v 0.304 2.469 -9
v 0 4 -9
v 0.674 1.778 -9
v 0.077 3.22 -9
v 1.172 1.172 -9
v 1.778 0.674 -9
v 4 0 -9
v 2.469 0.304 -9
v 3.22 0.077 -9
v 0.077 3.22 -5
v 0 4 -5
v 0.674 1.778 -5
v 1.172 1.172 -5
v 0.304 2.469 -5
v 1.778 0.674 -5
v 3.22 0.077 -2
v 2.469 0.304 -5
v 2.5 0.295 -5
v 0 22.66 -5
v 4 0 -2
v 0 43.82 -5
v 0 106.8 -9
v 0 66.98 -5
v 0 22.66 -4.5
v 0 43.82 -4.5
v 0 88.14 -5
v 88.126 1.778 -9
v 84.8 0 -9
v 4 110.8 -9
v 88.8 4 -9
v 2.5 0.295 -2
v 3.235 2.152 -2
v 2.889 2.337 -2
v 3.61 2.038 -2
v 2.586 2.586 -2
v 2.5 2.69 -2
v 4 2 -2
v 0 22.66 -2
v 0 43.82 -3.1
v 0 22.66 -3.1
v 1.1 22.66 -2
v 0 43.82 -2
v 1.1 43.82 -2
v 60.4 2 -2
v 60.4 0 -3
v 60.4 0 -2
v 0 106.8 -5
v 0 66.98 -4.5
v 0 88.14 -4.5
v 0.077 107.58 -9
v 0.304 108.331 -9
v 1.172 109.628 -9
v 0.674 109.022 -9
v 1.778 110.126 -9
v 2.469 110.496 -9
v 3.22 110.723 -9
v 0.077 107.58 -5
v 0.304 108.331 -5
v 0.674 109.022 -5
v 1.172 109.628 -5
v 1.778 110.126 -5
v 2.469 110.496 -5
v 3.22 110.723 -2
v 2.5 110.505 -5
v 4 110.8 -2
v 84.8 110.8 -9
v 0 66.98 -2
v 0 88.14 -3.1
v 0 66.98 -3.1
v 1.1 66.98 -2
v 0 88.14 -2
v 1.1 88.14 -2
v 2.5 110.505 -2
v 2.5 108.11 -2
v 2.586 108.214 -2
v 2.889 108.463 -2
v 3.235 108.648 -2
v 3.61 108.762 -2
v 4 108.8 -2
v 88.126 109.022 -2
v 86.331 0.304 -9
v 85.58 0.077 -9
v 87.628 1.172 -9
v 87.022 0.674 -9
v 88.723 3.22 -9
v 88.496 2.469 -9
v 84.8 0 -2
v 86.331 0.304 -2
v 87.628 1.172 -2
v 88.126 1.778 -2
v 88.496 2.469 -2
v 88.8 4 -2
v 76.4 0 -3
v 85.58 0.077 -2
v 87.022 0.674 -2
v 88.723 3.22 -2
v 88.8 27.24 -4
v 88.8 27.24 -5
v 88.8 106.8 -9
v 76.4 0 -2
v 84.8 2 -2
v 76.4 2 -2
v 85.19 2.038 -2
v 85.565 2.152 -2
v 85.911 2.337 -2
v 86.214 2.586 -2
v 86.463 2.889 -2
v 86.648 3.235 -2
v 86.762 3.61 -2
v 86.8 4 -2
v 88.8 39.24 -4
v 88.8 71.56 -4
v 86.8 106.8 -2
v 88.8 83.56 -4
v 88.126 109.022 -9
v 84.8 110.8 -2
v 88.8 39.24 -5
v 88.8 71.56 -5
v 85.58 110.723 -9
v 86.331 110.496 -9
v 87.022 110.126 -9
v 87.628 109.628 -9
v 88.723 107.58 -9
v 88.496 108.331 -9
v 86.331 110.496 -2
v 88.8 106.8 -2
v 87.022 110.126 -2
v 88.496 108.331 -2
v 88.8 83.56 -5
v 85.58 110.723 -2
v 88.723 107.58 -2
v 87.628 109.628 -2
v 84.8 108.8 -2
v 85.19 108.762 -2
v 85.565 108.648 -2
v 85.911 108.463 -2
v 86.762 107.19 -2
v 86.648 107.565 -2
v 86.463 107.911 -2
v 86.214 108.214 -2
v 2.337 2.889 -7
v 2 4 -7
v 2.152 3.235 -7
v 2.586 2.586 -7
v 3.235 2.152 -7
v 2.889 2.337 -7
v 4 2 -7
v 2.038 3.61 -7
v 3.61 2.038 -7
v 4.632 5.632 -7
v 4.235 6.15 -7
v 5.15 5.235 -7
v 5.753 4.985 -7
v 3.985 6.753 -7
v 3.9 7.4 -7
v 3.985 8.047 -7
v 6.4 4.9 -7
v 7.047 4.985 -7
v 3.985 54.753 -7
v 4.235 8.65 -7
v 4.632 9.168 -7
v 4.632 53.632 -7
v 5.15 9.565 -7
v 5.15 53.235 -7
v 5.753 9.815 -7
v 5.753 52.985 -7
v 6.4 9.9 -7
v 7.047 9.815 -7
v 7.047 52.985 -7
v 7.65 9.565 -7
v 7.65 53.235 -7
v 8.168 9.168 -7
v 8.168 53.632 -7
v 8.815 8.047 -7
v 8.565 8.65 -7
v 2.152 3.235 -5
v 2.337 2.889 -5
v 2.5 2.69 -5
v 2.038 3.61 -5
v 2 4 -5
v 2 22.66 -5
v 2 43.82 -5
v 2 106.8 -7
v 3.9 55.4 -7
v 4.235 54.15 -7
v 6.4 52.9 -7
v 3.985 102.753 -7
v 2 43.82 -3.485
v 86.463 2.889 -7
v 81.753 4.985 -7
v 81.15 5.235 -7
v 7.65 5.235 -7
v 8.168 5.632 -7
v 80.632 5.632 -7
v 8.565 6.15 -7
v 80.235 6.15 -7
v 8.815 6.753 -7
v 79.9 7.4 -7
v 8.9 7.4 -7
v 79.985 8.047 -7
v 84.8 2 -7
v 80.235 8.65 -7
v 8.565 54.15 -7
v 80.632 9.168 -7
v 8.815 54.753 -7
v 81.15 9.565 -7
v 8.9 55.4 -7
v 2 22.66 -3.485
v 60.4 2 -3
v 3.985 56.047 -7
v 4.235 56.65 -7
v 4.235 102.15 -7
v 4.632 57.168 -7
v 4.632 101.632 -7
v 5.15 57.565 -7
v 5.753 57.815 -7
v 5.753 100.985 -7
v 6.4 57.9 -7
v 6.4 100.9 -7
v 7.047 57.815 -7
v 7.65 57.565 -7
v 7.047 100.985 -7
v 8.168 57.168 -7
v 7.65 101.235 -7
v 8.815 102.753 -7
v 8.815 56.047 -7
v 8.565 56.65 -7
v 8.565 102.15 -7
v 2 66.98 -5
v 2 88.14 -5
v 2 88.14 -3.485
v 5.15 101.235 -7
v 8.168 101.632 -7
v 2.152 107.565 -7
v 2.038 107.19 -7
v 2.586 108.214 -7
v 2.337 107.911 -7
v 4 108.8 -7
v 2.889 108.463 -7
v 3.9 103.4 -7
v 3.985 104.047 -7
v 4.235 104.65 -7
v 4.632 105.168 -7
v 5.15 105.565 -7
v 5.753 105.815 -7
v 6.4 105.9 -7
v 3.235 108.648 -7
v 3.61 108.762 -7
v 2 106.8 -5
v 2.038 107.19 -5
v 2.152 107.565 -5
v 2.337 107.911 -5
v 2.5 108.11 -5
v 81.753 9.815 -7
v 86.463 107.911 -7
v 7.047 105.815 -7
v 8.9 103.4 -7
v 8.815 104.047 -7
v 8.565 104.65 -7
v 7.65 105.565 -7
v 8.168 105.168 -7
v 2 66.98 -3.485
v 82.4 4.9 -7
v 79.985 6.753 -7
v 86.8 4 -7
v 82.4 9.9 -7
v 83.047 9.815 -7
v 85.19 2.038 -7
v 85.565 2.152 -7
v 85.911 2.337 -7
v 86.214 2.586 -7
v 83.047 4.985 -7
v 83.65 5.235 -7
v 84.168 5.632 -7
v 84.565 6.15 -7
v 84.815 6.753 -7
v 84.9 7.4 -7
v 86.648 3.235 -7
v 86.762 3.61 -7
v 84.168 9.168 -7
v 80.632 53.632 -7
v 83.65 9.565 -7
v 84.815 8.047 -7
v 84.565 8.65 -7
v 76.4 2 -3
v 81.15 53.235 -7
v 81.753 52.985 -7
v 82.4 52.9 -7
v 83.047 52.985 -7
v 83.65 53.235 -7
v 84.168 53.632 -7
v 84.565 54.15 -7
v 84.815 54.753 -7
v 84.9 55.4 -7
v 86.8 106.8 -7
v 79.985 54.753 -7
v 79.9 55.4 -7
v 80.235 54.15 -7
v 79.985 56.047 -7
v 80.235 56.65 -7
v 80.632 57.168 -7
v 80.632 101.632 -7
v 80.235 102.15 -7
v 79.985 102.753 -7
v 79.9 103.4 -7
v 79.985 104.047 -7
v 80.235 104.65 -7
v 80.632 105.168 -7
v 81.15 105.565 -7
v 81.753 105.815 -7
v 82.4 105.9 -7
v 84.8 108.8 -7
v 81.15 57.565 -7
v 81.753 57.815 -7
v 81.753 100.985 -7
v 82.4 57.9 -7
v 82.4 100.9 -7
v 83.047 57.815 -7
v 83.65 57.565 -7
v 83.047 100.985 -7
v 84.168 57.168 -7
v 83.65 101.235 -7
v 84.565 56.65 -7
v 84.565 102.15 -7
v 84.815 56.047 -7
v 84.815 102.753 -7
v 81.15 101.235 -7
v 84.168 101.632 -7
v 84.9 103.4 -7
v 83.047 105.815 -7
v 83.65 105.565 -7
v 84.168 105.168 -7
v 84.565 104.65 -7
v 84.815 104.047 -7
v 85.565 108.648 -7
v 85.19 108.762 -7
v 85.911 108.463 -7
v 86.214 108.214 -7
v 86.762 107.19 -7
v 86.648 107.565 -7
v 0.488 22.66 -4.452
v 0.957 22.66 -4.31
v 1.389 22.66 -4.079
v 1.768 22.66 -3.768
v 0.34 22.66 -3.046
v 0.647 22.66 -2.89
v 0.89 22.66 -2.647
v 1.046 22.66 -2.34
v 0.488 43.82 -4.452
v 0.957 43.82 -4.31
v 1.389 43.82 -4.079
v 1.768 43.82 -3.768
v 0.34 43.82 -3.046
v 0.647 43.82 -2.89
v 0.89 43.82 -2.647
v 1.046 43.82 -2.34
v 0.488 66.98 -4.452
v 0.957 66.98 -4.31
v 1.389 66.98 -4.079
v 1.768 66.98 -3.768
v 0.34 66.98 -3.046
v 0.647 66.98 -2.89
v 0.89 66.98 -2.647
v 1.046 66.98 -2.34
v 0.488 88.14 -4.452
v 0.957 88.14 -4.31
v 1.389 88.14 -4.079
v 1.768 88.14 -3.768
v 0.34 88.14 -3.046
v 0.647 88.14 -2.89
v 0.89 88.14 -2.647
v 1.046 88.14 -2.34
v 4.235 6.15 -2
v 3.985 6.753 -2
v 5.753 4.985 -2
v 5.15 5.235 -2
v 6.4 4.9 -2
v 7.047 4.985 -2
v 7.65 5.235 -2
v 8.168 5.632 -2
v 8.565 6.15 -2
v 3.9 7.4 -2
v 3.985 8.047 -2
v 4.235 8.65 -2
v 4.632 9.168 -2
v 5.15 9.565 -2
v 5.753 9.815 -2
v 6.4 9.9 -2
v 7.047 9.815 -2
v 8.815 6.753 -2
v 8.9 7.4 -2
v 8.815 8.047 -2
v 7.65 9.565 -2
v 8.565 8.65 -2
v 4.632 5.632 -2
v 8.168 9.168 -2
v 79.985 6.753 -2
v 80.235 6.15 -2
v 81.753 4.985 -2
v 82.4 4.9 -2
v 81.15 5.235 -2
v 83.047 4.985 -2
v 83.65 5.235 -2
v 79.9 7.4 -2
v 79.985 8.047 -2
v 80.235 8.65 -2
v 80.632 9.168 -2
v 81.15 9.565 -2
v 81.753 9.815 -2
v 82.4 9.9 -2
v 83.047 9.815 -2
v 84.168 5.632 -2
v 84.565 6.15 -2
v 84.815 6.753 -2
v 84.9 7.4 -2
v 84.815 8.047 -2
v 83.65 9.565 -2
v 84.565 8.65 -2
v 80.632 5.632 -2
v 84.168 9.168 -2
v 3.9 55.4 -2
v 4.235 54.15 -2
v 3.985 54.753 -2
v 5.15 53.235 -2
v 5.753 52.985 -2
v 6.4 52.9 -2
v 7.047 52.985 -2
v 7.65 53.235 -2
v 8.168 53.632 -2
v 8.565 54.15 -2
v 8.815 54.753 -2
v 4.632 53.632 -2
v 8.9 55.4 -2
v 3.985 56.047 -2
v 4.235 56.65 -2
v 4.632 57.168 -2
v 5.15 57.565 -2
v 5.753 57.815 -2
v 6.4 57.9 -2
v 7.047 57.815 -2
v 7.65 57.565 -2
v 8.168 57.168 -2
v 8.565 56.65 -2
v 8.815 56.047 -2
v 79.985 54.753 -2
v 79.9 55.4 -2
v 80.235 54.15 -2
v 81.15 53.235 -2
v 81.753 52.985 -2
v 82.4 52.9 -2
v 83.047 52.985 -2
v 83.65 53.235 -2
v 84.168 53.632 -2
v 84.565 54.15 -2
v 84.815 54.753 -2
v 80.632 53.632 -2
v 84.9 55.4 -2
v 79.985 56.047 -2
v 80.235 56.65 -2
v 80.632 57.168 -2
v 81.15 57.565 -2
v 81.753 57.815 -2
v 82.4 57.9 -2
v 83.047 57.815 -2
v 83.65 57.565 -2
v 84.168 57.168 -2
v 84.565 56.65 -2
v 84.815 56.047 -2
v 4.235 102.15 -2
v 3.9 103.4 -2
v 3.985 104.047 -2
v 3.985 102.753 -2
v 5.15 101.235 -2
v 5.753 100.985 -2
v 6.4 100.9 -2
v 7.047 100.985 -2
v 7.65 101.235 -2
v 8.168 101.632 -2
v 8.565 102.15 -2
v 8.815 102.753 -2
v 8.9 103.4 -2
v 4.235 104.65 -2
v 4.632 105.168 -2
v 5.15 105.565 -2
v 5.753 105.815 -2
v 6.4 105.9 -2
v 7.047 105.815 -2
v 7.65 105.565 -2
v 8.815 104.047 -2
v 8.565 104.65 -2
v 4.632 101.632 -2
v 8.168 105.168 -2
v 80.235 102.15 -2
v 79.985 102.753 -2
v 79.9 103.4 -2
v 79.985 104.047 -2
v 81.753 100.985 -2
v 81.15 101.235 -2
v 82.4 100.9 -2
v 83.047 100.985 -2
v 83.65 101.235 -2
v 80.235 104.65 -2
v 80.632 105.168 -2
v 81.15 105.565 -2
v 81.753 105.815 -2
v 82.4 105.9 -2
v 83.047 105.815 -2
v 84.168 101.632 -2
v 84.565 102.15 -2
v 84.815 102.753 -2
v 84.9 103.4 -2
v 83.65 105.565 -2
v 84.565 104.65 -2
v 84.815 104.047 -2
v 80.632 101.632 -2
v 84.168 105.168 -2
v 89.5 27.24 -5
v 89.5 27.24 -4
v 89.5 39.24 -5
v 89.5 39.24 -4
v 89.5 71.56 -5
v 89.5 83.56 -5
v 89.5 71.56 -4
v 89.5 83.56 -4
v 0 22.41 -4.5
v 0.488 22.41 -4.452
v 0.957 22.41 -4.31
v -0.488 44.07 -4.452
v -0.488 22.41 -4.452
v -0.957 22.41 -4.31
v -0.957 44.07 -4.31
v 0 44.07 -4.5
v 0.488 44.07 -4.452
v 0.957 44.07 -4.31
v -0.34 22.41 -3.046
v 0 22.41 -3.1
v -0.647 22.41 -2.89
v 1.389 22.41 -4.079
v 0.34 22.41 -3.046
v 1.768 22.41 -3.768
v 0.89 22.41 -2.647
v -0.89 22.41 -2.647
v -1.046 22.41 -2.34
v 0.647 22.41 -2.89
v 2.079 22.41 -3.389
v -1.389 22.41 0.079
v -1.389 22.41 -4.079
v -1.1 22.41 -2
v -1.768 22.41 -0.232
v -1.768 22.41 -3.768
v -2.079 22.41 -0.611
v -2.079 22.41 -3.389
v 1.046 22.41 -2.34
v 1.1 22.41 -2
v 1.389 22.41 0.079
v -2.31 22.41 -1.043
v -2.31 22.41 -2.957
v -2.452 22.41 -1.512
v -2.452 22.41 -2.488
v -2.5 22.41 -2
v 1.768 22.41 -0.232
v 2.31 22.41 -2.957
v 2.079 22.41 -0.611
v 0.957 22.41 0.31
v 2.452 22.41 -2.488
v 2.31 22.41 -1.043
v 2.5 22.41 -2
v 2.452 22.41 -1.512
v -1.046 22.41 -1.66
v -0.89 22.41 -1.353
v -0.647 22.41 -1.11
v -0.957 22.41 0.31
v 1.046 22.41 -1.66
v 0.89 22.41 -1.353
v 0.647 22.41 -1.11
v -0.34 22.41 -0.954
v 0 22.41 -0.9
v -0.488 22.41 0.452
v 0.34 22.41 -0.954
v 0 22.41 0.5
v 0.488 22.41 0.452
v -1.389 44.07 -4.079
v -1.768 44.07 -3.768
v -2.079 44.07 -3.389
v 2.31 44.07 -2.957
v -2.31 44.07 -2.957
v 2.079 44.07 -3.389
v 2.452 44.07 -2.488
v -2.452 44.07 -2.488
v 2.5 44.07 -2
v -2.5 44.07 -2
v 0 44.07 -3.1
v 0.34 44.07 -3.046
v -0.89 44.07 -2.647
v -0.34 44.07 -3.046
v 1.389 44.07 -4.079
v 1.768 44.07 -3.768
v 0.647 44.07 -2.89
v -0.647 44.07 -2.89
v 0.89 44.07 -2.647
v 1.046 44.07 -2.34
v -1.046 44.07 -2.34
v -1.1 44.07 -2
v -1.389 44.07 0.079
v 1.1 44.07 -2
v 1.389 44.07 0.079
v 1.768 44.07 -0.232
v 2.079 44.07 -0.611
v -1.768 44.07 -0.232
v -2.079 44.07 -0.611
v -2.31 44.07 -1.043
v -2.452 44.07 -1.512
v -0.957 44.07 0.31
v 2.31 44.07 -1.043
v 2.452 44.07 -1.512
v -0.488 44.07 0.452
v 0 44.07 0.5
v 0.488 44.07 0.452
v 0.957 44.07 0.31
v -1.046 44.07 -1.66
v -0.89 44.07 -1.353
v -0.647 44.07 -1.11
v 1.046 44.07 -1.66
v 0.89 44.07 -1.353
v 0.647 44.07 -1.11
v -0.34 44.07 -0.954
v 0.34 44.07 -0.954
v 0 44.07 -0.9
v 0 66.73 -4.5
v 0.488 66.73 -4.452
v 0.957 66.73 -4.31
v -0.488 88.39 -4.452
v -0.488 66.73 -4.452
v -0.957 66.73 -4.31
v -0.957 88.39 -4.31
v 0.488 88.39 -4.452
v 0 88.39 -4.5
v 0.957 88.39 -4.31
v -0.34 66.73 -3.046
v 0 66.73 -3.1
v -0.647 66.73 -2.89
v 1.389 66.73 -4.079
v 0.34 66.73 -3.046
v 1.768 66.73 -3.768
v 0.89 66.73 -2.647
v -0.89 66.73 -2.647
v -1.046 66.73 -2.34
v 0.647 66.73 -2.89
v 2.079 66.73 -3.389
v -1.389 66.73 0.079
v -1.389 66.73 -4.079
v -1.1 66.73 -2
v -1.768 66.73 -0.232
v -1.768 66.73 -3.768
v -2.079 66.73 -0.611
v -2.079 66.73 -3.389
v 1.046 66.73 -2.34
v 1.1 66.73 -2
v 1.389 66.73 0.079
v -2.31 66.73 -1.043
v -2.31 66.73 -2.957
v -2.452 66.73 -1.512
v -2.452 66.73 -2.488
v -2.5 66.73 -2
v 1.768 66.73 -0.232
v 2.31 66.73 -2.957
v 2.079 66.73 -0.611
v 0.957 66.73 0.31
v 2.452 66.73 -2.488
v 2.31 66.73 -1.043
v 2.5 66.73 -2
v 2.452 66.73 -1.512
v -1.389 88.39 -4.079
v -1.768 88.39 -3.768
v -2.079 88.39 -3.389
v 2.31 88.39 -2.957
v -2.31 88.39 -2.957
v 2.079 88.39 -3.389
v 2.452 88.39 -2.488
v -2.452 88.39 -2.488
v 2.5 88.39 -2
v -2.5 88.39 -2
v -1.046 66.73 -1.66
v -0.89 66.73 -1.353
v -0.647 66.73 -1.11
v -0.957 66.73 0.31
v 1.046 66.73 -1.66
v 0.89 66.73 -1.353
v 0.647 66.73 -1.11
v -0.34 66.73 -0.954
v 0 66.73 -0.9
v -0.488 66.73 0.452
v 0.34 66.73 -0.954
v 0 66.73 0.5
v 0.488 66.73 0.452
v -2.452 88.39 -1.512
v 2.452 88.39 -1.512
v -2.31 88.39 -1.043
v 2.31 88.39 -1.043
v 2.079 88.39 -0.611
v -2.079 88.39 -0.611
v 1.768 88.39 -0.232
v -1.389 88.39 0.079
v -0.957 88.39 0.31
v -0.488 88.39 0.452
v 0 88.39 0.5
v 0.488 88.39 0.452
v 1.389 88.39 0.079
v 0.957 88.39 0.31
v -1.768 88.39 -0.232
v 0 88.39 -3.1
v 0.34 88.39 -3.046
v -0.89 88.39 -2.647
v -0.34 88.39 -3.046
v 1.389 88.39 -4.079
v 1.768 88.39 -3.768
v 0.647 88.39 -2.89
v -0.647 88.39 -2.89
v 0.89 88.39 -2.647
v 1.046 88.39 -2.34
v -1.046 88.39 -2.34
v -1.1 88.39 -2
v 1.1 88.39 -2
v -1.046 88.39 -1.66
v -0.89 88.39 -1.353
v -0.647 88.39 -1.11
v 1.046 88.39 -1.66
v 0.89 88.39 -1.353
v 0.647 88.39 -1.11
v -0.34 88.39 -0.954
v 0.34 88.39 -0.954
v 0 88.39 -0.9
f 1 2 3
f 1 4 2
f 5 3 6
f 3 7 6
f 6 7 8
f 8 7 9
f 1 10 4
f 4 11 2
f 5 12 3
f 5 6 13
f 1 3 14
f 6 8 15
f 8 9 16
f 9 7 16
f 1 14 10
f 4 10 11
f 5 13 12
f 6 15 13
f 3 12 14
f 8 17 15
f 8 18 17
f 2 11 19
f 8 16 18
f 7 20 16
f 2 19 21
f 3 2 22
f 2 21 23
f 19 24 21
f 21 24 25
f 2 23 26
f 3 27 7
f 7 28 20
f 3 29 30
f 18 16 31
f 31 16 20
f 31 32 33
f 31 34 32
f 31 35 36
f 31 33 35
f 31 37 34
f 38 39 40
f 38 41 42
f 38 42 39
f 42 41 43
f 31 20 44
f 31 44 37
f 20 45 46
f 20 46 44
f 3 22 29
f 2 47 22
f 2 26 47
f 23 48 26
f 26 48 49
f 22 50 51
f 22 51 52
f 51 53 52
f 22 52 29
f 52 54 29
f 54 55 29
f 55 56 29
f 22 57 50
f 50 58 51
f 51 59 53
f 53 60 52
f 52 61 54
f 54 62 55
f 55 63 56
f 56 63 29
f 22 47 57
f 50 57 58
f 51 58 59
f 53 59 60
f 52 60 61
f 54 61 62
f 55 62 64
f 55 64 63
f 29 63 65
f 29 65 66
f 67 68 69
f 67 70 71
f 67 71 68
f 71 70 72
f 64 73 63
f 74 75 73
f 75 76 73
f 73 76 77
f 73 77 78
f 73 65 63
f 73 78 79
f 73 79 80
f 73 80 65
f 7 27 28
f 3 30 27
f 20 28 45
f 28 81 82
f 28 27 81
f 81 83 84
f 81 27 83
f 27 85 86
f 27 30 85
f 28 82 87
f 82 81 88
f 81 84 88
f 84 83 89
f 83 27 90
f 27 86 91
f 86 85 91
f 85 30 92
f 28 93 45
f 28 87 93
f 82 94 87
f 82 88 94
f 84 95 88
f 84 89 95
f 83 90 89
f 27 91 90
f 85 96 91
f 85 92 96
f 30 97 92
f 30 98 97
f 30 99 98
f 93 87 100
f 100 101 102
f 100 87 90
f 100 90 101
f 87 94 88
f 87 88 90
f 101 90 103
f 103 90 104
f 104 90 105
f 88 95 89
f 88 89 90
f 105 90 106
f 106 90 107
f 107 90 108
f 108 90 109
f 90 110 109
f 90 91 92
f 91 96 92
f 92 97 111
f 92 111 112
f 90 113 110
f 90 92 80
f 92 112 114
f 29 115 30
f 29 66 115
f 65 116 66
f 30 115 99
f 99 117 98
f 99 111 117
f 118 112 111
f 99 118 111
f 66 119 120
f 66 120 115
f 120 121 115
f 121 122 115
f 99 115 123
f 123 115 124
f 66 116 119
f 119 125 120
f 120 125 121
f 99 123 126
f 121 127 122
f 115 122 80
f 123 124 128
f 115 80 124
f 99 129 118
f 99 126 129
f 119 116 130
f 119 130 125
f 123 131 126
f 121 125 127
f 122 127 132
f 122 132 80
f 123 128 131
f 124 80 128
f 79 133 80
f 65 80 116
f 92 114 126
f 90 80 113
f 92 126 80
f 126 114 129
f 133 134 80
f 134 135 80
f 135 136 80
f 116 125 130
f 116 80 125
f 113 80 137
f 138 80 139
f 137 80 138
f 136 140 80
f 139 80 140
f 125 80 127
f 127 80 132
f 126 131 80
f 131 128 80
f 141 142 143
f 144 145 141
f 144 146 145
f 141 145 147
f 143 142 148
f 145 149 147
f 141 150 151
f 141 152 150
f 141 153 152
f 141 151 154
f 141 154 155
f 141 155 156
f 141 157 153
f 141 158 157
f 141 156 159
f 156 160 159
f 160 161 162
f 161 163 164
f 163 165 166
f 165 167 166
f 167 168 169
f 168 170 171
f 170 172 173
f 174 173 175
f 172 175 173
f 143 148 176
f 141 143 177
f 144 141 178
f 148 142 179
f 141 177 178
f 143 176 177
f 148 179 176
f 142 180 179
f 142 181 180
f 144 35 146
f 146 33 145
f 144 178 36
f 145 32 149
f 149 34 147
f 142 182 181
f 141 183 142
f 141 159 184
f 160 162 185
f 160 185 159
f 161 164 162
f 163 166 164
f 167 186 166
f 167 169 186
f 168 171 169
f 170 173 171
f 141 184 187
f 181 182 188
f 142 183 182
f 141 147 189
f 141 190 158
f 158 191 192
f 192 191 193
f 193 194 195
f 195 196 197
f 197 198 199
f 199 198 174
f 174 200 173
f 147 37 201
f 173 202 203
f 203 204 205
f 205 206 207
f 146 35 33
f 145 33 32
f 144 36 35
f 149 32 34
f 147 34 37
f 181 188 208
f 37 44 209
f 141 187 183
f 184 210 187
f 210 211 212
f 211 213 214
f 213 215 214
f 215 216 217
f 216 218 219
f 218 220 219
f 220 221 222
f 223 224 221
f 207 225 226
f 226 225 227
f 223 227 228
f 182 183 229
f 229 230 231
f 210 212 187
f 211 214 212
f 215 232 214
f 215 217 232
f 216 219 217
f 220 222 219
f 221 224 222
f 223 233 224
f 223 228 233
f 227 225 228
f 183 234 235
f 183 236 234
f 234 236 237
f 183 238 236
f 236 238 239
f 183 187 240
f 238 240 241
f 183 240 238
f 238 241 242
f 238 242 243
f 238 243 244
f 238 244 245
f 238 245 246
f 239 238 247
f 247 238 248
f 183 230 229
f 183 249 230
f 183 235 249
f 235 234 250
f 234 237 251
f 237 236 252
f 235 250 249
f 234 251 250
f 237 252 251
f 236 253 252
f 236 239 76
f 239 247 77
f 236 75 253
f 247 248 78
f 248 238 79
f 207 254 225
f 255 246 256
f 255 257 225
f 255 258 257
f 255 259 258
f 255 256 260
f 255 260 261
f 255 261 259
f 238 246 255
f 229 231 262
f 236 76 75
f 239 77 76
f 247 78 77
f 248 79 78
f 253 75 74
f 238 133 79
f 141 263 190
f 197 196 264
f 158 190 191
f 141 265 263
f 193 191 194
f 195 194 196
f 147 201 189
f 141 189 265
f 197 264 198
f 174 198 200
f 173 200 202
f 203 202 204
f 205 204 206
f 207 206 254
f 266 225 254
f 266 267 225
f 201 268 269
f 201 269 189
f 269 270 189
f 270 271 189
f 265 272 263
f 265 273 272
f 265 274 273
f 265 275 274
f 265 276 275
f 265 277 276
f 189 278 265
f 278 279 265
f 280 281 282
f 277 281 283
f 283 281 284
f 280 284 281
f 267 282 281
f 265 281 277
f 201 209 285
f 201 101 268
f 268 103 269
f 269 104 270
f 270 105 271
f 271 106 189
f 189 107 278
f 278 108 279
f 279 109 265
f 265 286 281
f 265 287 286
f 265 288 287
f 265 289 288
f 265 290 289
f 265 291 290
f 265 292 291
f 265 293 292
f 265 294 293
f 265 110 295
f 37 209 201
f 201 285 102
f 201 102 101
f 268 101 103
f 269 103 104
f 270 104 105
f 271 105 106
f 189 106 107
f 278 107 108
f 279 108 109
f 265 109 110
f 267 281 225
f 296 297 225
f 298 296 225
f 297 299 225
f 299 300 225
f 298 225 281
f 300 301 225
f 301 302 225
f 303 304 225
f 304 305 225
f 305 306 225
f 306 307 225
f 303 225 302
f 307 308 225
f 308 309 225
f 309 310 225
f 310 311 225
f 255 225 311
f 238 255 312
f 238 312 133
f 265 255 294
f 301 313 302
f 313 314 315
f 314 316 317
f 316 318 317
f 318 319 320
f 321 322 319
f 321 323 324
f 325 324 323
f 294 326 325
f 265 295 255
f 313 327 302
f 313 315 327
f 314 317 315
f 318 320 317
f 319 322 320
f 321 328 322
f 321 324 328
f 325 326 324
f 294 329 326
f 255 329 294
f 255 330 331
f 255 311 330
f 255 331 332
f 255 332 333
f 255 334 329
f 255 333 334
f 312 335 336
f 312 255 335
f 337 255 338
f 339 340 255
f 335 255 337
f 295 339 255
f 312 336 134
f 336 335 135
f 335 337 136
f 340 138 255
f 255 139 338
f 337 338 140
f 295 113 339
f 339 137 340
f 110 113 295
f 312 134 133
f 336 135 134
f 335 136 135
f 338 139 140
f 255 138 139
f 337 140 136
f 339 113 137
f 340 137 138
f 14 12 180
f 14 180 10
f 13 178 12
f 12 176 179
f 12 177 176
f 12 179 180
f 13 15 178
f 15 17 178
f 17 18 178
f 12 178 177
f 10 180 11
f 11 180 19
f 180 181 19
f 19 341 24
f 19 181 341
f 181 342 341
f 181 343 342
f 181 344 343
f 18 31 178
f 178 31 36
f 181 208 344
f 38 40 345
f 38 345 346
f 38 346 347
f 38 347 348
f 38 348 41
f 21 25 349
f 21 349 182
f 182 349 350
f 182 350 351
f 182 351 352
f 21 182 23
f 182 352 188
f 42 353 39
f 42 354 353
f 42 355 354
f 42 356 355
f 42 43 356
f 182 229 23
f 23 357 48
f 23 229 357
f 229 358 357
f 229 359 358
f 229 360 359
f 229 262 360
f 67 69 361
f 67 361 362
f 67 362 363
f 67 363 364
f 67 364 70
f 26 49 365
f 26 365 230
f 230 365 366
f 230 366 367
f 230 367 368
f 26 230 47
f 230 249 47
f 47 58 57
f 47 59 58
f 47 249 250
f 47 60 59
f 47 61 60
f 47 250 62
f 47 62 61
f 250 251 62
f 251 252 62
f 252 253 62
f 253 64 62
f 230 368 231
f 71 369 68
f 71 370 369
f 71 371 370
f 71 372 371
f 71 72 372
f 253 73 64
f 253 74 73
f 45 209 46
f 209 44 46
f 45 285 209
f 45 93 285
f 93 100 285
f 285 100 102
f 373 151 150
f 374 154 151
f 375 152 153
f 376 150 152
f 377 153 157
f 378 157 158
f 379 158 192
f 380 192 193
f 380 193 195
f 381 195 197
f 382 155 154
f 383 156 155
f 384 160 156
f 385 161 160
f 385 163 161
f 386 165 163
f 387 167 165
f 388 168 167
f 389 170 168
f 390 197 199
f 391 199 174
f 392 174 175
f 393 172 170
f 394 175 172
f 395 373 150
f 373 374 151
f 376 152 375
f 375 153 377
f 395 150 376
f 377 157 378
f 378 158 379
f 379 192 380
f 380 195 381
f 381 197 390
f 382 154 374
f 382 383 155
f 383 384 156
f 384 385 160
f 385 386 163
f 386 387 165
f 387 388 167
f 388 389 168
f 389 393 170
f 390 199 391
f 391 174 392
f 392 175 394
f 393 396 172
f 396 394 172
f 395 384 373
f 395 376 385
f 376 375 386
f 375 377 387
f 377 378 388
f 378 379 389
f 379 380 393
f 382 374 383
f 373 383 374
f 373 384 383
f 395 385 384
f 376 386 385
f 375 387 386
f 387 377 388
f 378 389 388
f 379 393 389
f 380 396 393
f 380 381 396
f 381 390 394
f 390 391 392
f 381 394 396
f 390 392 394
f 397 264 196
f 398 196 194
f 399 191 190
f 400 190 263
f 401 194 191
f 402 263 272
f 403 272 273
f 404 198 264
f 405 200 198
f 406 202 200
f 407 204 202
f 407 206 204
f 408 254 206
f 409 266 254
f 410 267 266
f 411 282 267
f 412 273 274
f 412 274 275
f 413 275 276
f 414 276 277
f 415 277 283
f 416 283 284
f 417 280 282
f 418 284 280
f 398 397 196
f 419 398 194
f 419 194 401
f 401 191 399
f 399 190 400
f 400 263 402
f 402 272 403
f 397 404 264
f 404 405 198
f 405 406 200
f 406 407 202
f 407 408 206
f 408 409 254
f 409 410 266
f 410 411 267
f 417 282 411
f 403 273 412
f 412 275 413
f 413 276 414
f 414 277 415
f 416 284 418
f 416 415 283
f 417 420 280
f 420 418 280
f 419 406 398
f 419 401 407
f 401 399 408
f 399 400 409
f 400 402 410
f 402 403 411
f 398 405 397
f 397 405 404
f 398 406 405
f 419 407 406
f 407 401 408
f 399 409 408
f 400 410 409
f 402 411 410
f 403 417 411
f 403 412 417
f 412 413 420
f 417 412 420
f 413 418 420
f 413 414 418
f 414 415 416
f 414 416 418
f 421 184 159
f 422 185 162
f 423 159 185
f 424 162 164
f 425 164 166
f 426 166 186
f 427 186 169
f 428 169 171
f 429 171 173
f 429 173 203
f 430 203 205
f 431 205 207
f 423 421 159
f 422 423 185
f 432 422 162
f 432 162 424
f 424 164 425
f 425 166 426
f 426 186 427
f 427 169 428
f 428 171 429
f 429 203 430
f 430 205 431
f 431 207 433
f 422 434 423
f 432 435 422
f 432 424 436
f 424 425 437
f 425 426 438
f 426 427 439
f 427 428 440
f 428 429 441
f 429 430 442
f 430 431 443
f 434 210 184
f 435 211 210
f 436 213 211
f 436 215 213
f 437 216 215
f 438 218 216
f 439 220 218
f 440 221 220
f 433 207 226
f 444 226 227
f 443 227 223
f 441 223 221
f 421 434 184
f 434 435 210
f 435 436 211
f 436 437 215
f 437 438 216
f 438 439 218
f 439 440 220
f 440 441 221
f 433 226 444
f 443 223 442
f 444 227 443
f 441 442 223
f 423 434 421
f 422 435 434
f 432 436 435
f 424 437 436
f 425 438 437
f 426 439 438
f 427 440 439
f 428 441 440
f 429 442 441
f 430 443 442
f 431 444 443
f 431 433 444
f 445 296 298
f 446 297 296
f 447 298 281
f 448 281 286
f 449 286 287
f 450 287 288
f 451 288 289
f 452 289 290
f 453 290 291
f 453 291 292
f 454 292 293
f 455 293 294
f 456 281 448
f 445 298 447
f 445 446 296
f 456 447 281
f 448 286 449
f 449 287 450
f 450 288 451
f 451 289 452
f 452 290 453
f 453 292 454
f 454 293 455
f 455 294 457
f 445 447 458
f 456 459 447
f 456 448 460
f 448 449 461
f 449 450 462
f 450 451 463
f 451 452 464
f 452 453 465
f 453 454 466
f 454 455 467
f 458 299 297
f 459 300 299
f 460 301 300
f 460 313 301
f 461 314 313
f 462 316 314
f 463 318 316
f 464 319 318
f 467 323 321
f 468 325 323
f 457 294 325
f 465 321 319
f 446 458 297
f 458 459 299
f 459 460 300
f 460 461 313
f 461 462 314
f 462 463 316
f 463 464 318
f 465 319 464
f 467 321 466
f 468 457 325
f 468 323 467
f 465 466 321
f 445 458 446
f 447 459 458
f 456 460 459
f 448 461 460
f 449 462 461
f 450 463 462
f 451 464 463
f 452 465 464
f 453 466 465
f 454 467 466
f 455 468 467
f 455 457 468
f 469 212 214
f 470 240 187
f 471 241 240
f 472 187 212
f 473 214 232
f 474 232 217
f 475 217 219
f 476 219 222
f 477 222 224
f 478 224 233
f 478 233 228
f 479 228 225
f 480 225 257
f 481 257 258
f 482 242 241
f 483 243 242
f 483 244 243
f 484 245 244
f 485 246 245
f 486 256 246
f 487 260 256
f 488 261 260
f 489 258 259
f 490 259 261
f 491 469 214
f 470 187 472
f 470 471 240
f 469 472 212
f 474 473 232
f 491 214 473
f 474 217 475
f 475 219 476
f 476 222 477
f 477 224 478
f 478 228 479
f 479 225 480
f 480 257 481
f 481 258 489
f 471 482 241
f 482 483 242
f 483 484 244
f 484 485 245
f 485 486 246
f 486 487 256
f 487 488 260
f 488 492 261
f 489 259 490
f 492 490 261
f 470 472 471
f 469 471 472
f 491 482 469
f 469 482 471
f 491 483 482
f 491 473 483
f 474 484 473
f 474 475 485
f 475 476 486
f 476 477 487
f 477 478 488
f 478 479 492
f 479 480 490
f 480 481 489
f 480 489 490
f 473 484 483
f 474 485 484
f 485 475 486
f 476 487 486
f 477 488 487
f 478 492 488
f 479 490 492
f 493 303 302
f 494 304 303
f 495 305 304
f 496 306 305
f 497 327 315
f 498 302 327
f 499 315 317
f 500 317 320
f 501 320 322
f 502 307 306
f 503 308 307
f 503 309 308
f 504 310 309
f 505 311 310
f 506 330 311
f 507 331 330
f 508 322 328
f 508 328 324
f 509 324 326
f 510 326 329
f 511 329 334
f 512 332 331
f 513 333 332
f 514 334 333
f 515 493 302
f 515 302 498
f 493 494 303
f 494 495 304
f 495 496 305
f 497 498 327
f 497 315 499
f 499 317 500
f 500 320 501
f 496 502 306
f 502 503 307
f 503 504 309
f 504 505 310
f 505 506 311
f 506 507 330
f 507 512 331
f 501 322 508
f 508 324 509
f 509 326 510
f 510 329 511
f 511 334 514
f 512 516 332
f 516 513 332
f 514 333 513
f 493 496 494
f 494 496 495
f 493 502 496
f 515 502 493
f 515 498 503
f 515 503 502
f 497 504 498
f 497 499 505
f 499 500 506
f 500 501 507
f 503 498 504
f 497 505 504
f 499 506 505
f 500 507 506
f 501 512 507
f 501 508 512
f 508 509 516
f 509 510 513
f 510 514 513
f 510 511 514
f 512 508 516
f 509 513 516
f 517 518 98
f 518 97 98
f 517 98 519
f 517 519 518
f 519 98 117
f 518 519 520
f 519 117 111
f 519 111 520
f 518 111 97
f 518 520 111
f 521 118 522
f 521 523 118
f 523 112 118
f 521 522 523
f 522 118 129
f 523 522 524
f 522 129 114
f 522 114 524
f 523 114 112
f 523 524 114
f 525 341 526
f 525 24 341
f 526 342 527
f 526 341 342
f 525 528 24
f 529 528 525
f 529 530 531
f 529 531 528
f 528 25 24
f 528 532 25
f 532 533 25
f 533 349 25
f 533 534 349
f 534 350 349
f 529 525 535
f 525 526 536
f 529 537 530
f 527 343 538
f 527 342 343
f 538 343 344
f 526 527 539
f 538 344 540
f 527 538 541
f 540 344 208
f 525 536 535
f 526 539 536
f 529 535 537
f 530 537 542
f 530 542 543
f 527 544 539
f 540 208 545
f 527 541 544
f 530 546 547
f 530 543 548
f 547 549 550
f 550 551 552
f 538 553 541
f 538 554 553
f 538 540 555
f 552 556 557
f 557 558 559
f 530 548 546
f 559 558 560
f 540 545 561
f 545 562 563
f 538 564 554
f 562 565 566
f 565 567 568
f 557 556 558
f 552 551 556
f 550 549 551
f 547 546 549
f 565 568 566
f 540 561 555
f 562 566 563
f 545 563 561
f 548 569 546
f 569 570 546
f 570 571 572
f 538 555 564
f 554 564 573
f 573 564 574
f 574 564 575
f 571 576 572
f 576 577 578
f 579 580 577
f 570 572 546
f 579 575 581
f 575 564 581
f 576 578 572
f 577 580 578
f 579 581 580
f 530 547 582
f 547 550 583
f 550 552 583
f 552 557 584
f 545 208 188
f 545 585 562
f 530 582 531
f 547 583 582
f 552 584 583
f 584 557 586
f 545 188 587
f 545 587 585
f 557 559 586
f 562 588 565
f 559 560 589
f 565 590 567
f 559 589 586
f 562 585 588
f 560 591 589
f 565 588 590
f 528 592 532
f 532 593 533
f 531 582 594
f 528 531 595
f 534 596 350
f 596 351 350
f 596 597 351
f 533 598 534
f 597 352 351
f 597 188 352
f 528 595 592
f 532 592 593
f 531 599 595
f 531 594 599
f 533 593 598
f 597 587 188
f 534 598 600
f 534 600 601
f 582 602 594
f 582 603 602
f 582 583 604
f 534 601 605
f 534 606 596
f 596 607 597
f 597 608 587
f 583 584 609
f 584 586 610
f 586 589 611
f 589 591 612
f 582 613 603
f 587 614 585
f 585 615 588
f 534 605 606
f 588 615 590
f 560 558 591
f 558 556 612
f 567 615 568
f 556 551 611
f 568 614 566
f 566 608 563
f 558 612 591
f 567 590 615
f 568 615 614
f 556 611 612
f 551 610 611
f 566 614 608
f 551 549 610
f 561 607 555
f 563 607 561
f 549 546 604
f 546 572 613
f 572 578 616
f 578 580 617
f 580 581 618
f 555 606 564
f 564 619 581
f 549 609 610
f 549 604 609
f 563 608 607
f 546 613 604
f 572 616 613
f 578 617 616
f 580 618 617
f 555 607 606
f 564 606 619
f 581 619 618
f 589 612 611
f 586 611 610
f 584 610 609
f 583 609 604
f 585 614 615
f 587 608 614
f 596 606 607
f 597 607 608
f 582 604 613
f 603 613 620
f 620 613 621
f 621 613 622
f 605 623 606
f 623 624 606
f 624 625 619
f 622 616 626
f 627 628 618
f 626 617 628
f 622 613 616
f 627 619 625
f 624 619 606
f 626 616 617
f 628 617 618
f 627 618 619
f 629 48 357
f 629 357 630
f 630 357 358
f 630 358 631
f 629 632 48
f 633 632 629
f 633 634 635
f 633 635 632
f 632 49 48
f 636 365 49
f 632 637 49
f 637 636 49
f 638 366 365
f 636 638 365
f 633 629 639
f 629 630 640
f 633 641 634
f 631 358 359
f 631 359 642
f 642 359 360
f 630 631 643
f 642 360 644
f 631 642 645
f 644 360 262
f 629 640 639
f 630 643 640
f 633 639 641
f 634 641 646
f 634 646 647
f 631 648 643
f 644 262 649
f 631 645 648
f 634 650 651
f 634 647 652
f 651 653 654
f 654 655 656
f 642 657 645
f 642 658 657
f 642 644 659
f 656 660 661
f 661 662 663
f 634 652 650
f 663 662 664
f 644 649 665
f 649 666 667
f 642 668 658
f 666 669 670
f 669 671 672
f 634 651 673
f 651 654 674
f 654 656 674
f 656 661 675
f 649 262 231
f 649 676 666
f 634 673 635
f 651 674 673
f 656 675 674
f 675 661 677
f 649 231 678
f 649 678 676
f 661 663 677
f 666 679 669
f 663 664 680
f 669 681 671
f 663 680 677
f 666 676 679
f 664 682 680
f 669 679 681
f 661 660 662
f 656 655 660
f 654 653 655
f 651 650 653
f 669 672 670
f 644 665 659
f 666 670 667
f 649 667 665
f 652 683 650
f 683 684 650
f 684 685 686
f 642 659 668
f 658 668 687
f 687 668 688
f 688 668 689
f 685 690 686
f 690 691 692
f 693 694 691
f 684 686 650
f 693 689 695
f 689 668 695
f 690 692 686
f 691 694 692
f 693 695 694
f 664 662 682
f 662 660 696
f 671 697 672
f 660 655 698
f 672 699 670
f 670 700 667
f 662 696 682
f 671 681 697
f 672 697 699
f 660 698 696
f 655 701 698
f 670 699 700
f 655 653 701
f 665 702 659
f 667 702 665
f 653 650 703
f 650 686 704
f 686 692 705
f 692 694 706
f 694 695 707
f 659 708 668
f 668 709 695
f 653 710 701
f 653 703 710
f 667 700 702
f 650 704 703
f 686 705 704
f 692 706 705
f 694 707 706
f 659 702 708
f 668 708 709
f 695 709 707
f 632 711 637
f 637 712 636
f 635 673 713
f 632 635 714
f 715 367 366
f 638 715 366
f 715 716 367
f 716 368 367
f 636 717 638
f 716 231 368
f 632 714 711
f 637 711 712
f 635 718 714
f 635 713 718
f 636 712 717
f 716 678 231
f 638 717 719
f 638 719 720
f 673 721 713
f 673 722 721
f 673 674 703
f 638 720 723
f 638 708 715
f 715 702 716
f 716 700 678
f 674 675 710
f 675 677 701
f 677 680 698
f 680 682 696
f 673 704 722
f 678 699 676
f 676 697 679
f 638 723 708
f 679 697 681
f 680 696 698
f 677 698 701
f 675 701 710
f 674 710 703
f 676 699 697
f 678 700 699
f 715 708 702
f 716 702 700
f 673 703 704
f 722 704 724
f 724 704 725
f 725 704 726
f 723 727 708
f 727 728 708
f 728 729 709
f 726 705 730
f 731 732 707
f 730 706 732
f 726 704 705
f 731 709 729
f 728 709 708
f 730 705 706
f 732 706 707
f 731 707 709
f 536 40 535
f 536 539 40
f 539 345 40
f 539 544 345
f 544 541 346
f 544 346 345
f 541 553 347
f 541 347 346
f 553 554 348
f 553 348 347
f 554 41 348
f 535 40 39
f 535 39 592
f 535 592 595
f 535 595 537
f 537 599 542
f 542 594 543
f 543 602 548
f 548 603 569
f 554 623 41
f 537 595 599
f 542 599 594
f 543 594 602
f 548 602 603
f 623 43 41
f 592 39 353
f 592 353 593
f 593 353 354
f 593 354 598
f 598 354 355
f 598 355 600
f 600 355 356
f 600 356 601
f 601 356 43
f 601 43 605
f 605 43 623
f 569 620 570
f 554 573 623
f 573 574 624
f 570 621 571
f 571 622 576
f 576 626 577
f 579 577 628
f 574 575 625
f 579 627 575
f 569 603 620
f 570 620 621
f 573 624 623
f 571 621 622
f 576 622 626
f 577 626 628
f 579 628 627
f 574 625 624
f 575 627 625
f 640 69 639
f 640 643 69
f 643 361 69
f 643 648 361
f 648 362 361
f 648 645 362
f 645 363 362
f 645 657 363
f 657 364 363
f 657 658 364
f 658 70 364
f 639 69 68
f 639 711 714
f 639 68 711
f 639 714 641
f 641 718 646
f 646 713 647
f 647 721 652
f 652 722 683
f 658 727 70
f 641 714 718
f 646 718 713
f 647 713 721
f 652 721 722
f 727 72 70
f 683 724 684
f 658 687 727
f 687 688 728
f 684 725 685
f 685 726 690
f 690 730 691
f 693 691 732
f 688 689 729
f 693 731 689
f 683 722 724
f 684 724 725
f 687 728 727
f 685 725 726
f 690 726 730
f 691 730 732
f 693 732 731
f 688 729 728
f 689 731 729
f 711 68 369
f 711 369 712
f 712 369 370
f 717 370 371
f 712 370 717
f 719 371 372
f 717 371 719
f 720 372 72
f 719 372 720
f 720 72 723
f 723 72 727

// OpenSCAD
// file: dims.scad
// Shared dimensions for the baby-remote printed board + snap cap.
// SINGLE SOURCE OF TRUTH for the values BOTH parts must agree on. Edit the
// OUTLINE / GRID / LED / USB here and both baby-remote-pcb.scad and
// baby-remote-pcb-case.scad pick it up (they `include <dims.scad>`).
//
// Internal details stay in their own file: grooves / holes / C3 pocket / feet
// live in baby-remote-pcb.scad; walls / ledge / snap ridges / barrels live in
// baby-remote-pcb-case.scad. Only the shared interface lives here.

board_w = 84;     // board outline X (mm)
board_h = 106;    // board outline Y (mm)
board_t = 2.0;    // board thickness

// 4x4 button grid — cell centre, board-local mm. TOP (low Y) = USB/C3 edge.
function cx(c) = 16.5 + 17*c;
function cy(r) = 38.5 + 17*r;
function is_led(r,c) = (r==3 && c==3);   // cell (3,3) is the RGB LED, not a switch

c3_x = 66;        // ESP32-C3 SuperMini / USB-C port X (board-local), at the top edge

// ─── Shared case fit (cap + back cover BOTH use these) ────
// Three parts now share this frame: baby-remote-pcb-case.scad (cap),
// baby-remote-back-cover.scad (back cover), and the board. z = 0 at BOARD TOP.
pcb_clear = 0.4;  // gap per side around the board
wall      = 2.0;  // perimeter wall thickness (cap + cover, kept equal so faces are flush)
corner_r  = 4;    // outer corner radius

board_bot = -board_t;             // -2.0  board back (bottom) plane
inner_w   = board_w + 2*pcb_clear; // 84.8  cavity X
inner_l   = board_h + 2*pcb_clear; // 106.8 cavity Y
case_w    = inner_w + 2*wall;       // 88.8  outer X (shared by cap + cover)
case_l    = inner_l + 2*wall;       // 110.8 outer Y

// board-local (x,y) -> case (outer) coords
function px(x) = wall + pcb_clear + x;
function py(y) = wall + pcb_clear + y;

// USB-C opening (C3 dev-board port, overhangs the TOP short edge, y=0)
usbc_w = 16; usbc_h = 9;   // sized to clear the cable's rubber overmold (was 11x5)
usb_cx = px(c3_x);

// ─── Back cover + cap-to-cover joint ──────────────────────
// The board IS held by the cap (proven). The COVER closes the wire side and
// joins the cap via a FILAMENT-PIN HINGE on the LEFT long edge (x=0) and a
// SNAP on the RIGHT long edge (x=case_w). USB stays on the top short edge.
wire_clear = 5.0;   // clearance below the board back for wires/solder/pins
cover_fl_t = 2.0;   // back-cover floor thickness
// derived z planes (cover lives below the board):
cover_in_z  = board_bot - wire_clear;        // -5.0  cover floor inner (top) face
cover_bot_z = cover_in_z - cover_fl_t;       // -7.0  cover outer bottom
// cover walls rise from the floor up to the board-bottom plane to butt the cap:
cover_wall_h = board_bot - cover_in_z;       //  3.0  (wall above the floor, to z=board_bot)

// Standoff posts on the cover floor that push the board UP to the cap ledge when
// closed. Same groove-free zones the old feet used (board-local mm).
post_r = 2.5;
post_xy = [[4,5],[80,5],[4,53],[80,53],[4,101],[80,101]];

// Filament-pin hinge on the LEFT edge (axis along Y at the seam z=board_bot).
hinge_kn_r = 2.5;   // knuckle outer radius (protrudes -X beyond the wall)
hinge_bore = 2.2;   // pin bore for 1.75 mm filament — oversized for print shrinkage (was 1.9, too tight)
hinge_n    = 5;     // knuckle count along the edge (even idx = CAP, odd = COVER)
hinge_gap  = 0.5;   // axial play between adjacent knuckles
hinge_z    = board_bot;                       // pin axis z (the cap/cover seam)
function hinge_y0(i) = i*case_l/hinge_n;      // knuckle i start (Y)
function hinge_y1(i) = (i+1)*case_l/hinge_n;  // knuckle i end (Y)

// One hinge knuckle: a bored cylinder lying along Y at the left-edge seam.
// SHARED so cap (even i) and cover (odd i) knuckles interlock exactly.
module hinge_knuckle(i){
    y0 = hinge_y0(i) + hinge_gap/2;
    y1 = hinge_y1(i) - hinge_gap/2;
    translate([0, y0, hinge_z]) rotate([-90,0,0])
        difference(){
            cylinder(h=y1-y0, r=hinge_kn_r, $fn=32);
            translate([0,0,-0.1]) cylinder(h=y1-y0+0.2, r=hinge_bore/2, $fn=20);
        }
}

// Wall RELIEF slot for the OPPOSITE part's knuckle i — subtract from a part's
// left wall so the interleaved knuckles don't collide with the other part's wall.
// (Each part keeps solid wall at its OWN knuckle positions for attachment.)
module hinge_relief(i){
    y0 = hinge_y0(i) - hinge_gap;
    y1 = hinge_y1(i) + hinge_gap;
    translate([-0.5, y0, hinge_z - hinge_kn_r - 0.5])
        cube([wall + 1.0, y1 - y0, 2*hinge_kn_r + 1.0]);
}

// Snap-fit ported from push-c3-enclosure-bareboards.scad (proven). The COVER
// ("body") has a small RIDGE on its outer right wall; the CAP ("lid") has a
// TAPERED TAB (thick root → thin tip) hanging OUTSIDE that wall with a NOTCH that
// captures the ridge. The tab flexes OUTWARD into open air (no rubbing); the taper
// keeps it stiff at the notch but flexible at the tip; an ANCHOR block ties the tab
// solidly into the cap wall (volumetric, not a 2D seam). Press the tab out to open.
snap_w              = 12;    // width along the edge (Y)
snap_protrusion     = 0.7;   // cover ridge depth (+X) — the grip
snap_ridge_h        = 1.0;   // ridge height (Z)
snap_tab_thick_root = 2.5;   // cap tab thickness (X) at the root (stiff, where it grips)
snap_tab_thick_tip  = 1.5;   // cap tab thickness (X) at the tip (flexes to snap on)
snap_tab_drop       = 7;     // tab length below the seam
snap_notch_h        = 2.0;   // notch height (Z, > ridge for tolerance)
snap_ridge_zc       = board_bot - 2.5;   // ridge centre z (below seam, upper/thicker tab region)
clamp_ys            = [case_l*0.30, case_l*0.70];   // two snaps
// main file
// Baby Remote — BACK COVER (closes the exposed wire side of the board)
// Third part of the enclosure (board + cap + this cover). It snaps to the cap:
//   - FILAMENT-PIN HINGE on the LEFT long edge (x=0): interleaved knuckles on
//     cap + cover, joined by a snipped length of 1.75 mm filament as the pin.
//   - CANTILEVER SNAPS on the RIGHT long edge (x=case_w): the cap's clamps hang
//     down into windows in this cover's right wall and click home.
//   - The cover floor sits 3 mm below the board back (wire_clear); STANDOFF POSTS
//     rise to the board bottom and push it up against the cap's internal ledge.
//   - USB-C stays on the TOP short edge (handled by the cap); a shallow relief in
//     the cover's top wall keeps the connector clear.
// All shared geometry comes from dims.scad (single source of truth for cap+cover).
// Print FLOOR-DOWN (knuckles/clamps-window up). z = 0 at the BOARD TOP face, so
// the whole cover lives at NEGATIVE z (board_bot down to cover_bot_z).

include <dims.scad>

// ─── helpers ──────────────────────────────────────────────
module rbox(w,l,h,r){ hull() for(x=[r,w-r],y=[r,l-r]) translate([x,y,0]) cylinder(h=h,r=r,$fn=32); }
// hinge_knuckle(i) is shared from dims.scad; cover renders the ODD indices.

// ─── back cover body ──────────────────────────────────────
module back_cover(){
    union(){
        difference(){
            // outer block: floor + perimeter walls (cover_bot_z up to board_bot)
            translate([0,0,cover_bot_z]) rbox(case_w, case_l, board_bot-cover_bot_z, corner_r);
            // hollow out the inside above the floor (leaves floor + walls)
            translate([wall, wall, cover_in_z])
                rbox(inner_w, inner_l, (board_bot-cover_in_z)+0.1, max(0.5,corner_r-wall));
            // USB-C relief in the TOP wall (belt-and-braces; connector clears anyway)
            translate([usb_cx-usbc_w/2, -0.1, board_bot-1.0])
                cube([usbc_w, wall+0.2, 1.2]);
            // relieve the LEFT wall where the CAP's knuckles (even i) pass through
            for(i=[0:hinge_n-1]) if(i%2==0) hinge_relief(i);
        }

        // standoff posts: push the board up to the cap ledge when closed
        for(p=post_xy)
            translate([px(p[0]), py(p[1]), cover_in_z])
                cylinder(h=cover_wall_h, r=post_r, $fn=24);

        // snap-fit RIDGE on the outer right wall (the cap tab's notch catches these)
        for(yy=clamp_ys)
            translate([case_w, yy - snap_w/2, snap_ridge_zc - snap_ridge_h/2])
                cube([snap_protrusion, snap_w, snap_ridge_h]);

        // hinge knuckles — COVER half = ODD indices (cap takes the even ones)
        for(i=[0:hinge_n-1]) if(i%2==1) hinge_knuckle(i);
    }
}

// ─── render (this file = the back cover by itself, ready to export) ──
back_cover();
